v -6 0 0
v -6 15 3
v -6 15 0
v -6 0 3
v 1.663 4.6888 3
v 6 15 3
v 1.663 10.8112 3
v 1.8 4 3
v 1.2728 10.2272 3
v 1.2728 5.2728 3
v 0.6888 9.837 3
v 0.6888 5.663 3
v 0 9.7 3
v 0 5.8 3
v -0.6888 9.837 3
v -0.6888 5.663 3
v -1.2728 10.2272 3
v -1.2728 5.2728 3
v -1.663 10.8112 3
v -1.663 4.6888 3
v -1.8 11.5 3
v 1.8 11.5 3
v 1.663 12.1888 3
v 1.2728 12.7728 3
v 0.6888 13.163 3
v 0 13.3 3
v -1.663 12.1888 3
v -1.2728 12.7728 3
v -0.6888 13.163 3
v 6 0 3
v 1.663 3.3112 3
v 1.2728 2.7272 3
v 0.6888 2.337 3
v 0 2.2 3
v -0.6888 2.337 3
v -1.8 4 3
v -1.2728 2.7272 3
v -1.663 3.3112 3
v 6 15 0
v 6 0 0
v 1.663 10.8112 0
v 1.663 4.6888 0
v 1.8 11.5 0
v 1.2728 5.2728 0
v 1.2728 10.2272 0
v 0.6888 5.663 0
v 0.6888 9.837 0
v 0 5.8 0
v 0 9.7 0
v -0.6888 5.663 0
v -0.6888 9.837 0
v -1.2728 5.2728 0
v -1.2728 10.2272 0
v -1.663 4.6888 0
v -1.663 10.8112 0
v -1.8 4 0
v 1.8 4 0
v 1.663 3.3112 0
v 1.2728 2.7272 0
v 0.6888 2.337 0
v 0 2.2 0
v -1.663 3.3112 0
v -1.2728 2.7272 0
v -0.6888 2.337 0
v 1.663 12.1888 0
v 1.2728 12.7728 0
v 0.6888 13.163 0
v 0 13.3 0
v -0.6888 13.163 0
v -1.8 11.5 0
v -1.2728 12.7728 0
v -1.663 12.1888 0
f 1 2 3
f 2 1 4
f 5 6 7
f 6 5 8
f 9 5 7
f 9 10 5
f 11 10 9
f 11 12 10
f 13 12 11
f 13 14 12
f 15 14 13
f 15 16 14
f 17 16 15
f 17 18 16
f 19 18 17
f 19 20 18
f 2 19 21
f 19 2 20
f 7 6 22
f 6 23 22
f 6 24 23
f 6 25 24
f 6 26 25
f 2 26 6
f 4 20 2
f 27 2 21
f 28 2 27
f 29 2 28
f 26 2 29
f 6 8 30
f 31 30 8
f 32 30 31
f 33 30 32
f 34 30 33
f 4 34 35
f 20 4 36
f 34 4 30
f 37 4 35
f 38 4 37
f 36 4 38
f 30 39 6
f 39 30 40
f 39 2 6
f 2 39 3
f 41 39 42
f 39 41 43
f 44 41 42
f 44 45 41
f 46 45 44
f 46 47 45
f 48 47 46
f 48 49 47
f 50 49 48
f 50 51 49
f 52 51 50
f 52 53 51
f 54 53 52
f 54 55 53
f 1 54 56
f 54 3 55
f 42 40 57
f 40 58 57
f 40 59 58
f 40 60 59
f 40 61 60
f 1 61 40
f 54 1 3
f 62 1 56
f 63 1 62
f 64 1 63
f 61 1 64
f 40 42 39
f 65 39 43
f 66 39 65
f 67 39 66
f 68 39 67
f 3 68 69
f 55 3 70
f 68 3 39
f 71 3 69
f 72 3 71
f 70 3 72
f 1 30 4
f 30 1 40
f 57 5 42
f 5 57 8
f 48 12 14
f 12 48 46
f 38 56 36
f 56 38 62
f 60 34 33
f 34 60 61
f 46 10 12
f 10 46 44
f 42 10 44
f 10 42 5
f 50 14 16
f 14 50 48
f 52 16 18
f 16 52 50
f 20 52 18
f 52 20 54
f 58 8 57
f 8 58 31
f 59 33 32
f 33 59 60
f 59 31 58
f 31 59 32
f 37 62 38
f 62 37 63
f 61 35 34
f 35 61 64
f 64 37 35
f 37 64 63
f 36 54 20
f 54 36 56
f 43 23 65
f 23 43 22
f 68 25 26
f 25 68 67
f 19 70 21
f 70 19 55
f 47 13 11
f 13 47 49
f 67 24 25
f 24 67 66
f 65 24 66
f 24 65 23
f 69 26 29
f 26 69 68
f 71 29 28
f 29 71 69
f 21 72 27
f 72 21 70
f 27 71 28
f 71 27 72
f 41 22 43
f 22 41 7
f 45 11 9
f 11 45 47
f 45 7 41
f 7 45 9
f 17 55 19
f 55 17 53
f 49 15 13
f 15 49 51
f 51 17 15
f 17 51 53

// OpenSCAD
$fn=16;
difference(){
    translate([-6,0,0]) cube([12,15,3]);
    
    translate([0,4,-1]) cylinder(d=3.6,h=99);
    translate([0,4+7.5,-1]) cylinder(d=3.6,h=99);
}
